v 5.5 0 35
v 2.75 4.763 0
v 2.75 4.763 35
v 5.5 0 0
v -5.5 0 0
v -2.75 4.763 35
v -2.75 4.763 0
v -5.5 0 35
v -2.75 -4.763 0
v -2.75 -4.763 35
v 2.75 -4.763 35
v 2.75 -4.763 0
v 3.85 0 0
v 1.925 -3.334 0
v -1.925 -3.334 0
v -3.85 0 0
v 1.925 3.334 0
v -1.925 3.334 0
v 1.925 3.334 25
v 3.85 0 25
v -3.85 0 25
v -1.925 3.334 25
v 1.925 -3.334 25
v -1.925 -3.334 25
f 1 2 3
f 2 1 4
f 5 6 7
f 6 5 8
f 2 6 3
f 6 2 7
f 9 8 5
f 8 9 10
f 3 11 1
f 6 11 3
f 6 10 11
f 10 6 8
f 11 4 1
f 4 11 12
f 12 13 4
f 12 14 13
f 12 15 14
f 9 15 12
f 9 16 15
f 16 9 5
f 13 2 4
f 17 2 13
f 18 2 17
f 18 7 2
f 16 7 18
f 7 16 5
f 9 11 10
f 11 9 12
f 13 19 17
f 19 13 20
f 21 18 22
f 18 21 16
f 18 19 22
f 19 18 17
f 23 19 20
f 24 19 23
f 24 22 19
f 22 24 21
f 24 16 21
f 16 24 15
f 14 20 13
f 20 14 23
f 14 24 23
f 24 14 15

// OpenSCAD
difference() {
  cylinder(r=11/2,h=35,$fn=6);
  translate([0,0,0])cylinder(r=7.7/2,h=25
   ,$fn=6);
//  //cube(50,50,50);
}
